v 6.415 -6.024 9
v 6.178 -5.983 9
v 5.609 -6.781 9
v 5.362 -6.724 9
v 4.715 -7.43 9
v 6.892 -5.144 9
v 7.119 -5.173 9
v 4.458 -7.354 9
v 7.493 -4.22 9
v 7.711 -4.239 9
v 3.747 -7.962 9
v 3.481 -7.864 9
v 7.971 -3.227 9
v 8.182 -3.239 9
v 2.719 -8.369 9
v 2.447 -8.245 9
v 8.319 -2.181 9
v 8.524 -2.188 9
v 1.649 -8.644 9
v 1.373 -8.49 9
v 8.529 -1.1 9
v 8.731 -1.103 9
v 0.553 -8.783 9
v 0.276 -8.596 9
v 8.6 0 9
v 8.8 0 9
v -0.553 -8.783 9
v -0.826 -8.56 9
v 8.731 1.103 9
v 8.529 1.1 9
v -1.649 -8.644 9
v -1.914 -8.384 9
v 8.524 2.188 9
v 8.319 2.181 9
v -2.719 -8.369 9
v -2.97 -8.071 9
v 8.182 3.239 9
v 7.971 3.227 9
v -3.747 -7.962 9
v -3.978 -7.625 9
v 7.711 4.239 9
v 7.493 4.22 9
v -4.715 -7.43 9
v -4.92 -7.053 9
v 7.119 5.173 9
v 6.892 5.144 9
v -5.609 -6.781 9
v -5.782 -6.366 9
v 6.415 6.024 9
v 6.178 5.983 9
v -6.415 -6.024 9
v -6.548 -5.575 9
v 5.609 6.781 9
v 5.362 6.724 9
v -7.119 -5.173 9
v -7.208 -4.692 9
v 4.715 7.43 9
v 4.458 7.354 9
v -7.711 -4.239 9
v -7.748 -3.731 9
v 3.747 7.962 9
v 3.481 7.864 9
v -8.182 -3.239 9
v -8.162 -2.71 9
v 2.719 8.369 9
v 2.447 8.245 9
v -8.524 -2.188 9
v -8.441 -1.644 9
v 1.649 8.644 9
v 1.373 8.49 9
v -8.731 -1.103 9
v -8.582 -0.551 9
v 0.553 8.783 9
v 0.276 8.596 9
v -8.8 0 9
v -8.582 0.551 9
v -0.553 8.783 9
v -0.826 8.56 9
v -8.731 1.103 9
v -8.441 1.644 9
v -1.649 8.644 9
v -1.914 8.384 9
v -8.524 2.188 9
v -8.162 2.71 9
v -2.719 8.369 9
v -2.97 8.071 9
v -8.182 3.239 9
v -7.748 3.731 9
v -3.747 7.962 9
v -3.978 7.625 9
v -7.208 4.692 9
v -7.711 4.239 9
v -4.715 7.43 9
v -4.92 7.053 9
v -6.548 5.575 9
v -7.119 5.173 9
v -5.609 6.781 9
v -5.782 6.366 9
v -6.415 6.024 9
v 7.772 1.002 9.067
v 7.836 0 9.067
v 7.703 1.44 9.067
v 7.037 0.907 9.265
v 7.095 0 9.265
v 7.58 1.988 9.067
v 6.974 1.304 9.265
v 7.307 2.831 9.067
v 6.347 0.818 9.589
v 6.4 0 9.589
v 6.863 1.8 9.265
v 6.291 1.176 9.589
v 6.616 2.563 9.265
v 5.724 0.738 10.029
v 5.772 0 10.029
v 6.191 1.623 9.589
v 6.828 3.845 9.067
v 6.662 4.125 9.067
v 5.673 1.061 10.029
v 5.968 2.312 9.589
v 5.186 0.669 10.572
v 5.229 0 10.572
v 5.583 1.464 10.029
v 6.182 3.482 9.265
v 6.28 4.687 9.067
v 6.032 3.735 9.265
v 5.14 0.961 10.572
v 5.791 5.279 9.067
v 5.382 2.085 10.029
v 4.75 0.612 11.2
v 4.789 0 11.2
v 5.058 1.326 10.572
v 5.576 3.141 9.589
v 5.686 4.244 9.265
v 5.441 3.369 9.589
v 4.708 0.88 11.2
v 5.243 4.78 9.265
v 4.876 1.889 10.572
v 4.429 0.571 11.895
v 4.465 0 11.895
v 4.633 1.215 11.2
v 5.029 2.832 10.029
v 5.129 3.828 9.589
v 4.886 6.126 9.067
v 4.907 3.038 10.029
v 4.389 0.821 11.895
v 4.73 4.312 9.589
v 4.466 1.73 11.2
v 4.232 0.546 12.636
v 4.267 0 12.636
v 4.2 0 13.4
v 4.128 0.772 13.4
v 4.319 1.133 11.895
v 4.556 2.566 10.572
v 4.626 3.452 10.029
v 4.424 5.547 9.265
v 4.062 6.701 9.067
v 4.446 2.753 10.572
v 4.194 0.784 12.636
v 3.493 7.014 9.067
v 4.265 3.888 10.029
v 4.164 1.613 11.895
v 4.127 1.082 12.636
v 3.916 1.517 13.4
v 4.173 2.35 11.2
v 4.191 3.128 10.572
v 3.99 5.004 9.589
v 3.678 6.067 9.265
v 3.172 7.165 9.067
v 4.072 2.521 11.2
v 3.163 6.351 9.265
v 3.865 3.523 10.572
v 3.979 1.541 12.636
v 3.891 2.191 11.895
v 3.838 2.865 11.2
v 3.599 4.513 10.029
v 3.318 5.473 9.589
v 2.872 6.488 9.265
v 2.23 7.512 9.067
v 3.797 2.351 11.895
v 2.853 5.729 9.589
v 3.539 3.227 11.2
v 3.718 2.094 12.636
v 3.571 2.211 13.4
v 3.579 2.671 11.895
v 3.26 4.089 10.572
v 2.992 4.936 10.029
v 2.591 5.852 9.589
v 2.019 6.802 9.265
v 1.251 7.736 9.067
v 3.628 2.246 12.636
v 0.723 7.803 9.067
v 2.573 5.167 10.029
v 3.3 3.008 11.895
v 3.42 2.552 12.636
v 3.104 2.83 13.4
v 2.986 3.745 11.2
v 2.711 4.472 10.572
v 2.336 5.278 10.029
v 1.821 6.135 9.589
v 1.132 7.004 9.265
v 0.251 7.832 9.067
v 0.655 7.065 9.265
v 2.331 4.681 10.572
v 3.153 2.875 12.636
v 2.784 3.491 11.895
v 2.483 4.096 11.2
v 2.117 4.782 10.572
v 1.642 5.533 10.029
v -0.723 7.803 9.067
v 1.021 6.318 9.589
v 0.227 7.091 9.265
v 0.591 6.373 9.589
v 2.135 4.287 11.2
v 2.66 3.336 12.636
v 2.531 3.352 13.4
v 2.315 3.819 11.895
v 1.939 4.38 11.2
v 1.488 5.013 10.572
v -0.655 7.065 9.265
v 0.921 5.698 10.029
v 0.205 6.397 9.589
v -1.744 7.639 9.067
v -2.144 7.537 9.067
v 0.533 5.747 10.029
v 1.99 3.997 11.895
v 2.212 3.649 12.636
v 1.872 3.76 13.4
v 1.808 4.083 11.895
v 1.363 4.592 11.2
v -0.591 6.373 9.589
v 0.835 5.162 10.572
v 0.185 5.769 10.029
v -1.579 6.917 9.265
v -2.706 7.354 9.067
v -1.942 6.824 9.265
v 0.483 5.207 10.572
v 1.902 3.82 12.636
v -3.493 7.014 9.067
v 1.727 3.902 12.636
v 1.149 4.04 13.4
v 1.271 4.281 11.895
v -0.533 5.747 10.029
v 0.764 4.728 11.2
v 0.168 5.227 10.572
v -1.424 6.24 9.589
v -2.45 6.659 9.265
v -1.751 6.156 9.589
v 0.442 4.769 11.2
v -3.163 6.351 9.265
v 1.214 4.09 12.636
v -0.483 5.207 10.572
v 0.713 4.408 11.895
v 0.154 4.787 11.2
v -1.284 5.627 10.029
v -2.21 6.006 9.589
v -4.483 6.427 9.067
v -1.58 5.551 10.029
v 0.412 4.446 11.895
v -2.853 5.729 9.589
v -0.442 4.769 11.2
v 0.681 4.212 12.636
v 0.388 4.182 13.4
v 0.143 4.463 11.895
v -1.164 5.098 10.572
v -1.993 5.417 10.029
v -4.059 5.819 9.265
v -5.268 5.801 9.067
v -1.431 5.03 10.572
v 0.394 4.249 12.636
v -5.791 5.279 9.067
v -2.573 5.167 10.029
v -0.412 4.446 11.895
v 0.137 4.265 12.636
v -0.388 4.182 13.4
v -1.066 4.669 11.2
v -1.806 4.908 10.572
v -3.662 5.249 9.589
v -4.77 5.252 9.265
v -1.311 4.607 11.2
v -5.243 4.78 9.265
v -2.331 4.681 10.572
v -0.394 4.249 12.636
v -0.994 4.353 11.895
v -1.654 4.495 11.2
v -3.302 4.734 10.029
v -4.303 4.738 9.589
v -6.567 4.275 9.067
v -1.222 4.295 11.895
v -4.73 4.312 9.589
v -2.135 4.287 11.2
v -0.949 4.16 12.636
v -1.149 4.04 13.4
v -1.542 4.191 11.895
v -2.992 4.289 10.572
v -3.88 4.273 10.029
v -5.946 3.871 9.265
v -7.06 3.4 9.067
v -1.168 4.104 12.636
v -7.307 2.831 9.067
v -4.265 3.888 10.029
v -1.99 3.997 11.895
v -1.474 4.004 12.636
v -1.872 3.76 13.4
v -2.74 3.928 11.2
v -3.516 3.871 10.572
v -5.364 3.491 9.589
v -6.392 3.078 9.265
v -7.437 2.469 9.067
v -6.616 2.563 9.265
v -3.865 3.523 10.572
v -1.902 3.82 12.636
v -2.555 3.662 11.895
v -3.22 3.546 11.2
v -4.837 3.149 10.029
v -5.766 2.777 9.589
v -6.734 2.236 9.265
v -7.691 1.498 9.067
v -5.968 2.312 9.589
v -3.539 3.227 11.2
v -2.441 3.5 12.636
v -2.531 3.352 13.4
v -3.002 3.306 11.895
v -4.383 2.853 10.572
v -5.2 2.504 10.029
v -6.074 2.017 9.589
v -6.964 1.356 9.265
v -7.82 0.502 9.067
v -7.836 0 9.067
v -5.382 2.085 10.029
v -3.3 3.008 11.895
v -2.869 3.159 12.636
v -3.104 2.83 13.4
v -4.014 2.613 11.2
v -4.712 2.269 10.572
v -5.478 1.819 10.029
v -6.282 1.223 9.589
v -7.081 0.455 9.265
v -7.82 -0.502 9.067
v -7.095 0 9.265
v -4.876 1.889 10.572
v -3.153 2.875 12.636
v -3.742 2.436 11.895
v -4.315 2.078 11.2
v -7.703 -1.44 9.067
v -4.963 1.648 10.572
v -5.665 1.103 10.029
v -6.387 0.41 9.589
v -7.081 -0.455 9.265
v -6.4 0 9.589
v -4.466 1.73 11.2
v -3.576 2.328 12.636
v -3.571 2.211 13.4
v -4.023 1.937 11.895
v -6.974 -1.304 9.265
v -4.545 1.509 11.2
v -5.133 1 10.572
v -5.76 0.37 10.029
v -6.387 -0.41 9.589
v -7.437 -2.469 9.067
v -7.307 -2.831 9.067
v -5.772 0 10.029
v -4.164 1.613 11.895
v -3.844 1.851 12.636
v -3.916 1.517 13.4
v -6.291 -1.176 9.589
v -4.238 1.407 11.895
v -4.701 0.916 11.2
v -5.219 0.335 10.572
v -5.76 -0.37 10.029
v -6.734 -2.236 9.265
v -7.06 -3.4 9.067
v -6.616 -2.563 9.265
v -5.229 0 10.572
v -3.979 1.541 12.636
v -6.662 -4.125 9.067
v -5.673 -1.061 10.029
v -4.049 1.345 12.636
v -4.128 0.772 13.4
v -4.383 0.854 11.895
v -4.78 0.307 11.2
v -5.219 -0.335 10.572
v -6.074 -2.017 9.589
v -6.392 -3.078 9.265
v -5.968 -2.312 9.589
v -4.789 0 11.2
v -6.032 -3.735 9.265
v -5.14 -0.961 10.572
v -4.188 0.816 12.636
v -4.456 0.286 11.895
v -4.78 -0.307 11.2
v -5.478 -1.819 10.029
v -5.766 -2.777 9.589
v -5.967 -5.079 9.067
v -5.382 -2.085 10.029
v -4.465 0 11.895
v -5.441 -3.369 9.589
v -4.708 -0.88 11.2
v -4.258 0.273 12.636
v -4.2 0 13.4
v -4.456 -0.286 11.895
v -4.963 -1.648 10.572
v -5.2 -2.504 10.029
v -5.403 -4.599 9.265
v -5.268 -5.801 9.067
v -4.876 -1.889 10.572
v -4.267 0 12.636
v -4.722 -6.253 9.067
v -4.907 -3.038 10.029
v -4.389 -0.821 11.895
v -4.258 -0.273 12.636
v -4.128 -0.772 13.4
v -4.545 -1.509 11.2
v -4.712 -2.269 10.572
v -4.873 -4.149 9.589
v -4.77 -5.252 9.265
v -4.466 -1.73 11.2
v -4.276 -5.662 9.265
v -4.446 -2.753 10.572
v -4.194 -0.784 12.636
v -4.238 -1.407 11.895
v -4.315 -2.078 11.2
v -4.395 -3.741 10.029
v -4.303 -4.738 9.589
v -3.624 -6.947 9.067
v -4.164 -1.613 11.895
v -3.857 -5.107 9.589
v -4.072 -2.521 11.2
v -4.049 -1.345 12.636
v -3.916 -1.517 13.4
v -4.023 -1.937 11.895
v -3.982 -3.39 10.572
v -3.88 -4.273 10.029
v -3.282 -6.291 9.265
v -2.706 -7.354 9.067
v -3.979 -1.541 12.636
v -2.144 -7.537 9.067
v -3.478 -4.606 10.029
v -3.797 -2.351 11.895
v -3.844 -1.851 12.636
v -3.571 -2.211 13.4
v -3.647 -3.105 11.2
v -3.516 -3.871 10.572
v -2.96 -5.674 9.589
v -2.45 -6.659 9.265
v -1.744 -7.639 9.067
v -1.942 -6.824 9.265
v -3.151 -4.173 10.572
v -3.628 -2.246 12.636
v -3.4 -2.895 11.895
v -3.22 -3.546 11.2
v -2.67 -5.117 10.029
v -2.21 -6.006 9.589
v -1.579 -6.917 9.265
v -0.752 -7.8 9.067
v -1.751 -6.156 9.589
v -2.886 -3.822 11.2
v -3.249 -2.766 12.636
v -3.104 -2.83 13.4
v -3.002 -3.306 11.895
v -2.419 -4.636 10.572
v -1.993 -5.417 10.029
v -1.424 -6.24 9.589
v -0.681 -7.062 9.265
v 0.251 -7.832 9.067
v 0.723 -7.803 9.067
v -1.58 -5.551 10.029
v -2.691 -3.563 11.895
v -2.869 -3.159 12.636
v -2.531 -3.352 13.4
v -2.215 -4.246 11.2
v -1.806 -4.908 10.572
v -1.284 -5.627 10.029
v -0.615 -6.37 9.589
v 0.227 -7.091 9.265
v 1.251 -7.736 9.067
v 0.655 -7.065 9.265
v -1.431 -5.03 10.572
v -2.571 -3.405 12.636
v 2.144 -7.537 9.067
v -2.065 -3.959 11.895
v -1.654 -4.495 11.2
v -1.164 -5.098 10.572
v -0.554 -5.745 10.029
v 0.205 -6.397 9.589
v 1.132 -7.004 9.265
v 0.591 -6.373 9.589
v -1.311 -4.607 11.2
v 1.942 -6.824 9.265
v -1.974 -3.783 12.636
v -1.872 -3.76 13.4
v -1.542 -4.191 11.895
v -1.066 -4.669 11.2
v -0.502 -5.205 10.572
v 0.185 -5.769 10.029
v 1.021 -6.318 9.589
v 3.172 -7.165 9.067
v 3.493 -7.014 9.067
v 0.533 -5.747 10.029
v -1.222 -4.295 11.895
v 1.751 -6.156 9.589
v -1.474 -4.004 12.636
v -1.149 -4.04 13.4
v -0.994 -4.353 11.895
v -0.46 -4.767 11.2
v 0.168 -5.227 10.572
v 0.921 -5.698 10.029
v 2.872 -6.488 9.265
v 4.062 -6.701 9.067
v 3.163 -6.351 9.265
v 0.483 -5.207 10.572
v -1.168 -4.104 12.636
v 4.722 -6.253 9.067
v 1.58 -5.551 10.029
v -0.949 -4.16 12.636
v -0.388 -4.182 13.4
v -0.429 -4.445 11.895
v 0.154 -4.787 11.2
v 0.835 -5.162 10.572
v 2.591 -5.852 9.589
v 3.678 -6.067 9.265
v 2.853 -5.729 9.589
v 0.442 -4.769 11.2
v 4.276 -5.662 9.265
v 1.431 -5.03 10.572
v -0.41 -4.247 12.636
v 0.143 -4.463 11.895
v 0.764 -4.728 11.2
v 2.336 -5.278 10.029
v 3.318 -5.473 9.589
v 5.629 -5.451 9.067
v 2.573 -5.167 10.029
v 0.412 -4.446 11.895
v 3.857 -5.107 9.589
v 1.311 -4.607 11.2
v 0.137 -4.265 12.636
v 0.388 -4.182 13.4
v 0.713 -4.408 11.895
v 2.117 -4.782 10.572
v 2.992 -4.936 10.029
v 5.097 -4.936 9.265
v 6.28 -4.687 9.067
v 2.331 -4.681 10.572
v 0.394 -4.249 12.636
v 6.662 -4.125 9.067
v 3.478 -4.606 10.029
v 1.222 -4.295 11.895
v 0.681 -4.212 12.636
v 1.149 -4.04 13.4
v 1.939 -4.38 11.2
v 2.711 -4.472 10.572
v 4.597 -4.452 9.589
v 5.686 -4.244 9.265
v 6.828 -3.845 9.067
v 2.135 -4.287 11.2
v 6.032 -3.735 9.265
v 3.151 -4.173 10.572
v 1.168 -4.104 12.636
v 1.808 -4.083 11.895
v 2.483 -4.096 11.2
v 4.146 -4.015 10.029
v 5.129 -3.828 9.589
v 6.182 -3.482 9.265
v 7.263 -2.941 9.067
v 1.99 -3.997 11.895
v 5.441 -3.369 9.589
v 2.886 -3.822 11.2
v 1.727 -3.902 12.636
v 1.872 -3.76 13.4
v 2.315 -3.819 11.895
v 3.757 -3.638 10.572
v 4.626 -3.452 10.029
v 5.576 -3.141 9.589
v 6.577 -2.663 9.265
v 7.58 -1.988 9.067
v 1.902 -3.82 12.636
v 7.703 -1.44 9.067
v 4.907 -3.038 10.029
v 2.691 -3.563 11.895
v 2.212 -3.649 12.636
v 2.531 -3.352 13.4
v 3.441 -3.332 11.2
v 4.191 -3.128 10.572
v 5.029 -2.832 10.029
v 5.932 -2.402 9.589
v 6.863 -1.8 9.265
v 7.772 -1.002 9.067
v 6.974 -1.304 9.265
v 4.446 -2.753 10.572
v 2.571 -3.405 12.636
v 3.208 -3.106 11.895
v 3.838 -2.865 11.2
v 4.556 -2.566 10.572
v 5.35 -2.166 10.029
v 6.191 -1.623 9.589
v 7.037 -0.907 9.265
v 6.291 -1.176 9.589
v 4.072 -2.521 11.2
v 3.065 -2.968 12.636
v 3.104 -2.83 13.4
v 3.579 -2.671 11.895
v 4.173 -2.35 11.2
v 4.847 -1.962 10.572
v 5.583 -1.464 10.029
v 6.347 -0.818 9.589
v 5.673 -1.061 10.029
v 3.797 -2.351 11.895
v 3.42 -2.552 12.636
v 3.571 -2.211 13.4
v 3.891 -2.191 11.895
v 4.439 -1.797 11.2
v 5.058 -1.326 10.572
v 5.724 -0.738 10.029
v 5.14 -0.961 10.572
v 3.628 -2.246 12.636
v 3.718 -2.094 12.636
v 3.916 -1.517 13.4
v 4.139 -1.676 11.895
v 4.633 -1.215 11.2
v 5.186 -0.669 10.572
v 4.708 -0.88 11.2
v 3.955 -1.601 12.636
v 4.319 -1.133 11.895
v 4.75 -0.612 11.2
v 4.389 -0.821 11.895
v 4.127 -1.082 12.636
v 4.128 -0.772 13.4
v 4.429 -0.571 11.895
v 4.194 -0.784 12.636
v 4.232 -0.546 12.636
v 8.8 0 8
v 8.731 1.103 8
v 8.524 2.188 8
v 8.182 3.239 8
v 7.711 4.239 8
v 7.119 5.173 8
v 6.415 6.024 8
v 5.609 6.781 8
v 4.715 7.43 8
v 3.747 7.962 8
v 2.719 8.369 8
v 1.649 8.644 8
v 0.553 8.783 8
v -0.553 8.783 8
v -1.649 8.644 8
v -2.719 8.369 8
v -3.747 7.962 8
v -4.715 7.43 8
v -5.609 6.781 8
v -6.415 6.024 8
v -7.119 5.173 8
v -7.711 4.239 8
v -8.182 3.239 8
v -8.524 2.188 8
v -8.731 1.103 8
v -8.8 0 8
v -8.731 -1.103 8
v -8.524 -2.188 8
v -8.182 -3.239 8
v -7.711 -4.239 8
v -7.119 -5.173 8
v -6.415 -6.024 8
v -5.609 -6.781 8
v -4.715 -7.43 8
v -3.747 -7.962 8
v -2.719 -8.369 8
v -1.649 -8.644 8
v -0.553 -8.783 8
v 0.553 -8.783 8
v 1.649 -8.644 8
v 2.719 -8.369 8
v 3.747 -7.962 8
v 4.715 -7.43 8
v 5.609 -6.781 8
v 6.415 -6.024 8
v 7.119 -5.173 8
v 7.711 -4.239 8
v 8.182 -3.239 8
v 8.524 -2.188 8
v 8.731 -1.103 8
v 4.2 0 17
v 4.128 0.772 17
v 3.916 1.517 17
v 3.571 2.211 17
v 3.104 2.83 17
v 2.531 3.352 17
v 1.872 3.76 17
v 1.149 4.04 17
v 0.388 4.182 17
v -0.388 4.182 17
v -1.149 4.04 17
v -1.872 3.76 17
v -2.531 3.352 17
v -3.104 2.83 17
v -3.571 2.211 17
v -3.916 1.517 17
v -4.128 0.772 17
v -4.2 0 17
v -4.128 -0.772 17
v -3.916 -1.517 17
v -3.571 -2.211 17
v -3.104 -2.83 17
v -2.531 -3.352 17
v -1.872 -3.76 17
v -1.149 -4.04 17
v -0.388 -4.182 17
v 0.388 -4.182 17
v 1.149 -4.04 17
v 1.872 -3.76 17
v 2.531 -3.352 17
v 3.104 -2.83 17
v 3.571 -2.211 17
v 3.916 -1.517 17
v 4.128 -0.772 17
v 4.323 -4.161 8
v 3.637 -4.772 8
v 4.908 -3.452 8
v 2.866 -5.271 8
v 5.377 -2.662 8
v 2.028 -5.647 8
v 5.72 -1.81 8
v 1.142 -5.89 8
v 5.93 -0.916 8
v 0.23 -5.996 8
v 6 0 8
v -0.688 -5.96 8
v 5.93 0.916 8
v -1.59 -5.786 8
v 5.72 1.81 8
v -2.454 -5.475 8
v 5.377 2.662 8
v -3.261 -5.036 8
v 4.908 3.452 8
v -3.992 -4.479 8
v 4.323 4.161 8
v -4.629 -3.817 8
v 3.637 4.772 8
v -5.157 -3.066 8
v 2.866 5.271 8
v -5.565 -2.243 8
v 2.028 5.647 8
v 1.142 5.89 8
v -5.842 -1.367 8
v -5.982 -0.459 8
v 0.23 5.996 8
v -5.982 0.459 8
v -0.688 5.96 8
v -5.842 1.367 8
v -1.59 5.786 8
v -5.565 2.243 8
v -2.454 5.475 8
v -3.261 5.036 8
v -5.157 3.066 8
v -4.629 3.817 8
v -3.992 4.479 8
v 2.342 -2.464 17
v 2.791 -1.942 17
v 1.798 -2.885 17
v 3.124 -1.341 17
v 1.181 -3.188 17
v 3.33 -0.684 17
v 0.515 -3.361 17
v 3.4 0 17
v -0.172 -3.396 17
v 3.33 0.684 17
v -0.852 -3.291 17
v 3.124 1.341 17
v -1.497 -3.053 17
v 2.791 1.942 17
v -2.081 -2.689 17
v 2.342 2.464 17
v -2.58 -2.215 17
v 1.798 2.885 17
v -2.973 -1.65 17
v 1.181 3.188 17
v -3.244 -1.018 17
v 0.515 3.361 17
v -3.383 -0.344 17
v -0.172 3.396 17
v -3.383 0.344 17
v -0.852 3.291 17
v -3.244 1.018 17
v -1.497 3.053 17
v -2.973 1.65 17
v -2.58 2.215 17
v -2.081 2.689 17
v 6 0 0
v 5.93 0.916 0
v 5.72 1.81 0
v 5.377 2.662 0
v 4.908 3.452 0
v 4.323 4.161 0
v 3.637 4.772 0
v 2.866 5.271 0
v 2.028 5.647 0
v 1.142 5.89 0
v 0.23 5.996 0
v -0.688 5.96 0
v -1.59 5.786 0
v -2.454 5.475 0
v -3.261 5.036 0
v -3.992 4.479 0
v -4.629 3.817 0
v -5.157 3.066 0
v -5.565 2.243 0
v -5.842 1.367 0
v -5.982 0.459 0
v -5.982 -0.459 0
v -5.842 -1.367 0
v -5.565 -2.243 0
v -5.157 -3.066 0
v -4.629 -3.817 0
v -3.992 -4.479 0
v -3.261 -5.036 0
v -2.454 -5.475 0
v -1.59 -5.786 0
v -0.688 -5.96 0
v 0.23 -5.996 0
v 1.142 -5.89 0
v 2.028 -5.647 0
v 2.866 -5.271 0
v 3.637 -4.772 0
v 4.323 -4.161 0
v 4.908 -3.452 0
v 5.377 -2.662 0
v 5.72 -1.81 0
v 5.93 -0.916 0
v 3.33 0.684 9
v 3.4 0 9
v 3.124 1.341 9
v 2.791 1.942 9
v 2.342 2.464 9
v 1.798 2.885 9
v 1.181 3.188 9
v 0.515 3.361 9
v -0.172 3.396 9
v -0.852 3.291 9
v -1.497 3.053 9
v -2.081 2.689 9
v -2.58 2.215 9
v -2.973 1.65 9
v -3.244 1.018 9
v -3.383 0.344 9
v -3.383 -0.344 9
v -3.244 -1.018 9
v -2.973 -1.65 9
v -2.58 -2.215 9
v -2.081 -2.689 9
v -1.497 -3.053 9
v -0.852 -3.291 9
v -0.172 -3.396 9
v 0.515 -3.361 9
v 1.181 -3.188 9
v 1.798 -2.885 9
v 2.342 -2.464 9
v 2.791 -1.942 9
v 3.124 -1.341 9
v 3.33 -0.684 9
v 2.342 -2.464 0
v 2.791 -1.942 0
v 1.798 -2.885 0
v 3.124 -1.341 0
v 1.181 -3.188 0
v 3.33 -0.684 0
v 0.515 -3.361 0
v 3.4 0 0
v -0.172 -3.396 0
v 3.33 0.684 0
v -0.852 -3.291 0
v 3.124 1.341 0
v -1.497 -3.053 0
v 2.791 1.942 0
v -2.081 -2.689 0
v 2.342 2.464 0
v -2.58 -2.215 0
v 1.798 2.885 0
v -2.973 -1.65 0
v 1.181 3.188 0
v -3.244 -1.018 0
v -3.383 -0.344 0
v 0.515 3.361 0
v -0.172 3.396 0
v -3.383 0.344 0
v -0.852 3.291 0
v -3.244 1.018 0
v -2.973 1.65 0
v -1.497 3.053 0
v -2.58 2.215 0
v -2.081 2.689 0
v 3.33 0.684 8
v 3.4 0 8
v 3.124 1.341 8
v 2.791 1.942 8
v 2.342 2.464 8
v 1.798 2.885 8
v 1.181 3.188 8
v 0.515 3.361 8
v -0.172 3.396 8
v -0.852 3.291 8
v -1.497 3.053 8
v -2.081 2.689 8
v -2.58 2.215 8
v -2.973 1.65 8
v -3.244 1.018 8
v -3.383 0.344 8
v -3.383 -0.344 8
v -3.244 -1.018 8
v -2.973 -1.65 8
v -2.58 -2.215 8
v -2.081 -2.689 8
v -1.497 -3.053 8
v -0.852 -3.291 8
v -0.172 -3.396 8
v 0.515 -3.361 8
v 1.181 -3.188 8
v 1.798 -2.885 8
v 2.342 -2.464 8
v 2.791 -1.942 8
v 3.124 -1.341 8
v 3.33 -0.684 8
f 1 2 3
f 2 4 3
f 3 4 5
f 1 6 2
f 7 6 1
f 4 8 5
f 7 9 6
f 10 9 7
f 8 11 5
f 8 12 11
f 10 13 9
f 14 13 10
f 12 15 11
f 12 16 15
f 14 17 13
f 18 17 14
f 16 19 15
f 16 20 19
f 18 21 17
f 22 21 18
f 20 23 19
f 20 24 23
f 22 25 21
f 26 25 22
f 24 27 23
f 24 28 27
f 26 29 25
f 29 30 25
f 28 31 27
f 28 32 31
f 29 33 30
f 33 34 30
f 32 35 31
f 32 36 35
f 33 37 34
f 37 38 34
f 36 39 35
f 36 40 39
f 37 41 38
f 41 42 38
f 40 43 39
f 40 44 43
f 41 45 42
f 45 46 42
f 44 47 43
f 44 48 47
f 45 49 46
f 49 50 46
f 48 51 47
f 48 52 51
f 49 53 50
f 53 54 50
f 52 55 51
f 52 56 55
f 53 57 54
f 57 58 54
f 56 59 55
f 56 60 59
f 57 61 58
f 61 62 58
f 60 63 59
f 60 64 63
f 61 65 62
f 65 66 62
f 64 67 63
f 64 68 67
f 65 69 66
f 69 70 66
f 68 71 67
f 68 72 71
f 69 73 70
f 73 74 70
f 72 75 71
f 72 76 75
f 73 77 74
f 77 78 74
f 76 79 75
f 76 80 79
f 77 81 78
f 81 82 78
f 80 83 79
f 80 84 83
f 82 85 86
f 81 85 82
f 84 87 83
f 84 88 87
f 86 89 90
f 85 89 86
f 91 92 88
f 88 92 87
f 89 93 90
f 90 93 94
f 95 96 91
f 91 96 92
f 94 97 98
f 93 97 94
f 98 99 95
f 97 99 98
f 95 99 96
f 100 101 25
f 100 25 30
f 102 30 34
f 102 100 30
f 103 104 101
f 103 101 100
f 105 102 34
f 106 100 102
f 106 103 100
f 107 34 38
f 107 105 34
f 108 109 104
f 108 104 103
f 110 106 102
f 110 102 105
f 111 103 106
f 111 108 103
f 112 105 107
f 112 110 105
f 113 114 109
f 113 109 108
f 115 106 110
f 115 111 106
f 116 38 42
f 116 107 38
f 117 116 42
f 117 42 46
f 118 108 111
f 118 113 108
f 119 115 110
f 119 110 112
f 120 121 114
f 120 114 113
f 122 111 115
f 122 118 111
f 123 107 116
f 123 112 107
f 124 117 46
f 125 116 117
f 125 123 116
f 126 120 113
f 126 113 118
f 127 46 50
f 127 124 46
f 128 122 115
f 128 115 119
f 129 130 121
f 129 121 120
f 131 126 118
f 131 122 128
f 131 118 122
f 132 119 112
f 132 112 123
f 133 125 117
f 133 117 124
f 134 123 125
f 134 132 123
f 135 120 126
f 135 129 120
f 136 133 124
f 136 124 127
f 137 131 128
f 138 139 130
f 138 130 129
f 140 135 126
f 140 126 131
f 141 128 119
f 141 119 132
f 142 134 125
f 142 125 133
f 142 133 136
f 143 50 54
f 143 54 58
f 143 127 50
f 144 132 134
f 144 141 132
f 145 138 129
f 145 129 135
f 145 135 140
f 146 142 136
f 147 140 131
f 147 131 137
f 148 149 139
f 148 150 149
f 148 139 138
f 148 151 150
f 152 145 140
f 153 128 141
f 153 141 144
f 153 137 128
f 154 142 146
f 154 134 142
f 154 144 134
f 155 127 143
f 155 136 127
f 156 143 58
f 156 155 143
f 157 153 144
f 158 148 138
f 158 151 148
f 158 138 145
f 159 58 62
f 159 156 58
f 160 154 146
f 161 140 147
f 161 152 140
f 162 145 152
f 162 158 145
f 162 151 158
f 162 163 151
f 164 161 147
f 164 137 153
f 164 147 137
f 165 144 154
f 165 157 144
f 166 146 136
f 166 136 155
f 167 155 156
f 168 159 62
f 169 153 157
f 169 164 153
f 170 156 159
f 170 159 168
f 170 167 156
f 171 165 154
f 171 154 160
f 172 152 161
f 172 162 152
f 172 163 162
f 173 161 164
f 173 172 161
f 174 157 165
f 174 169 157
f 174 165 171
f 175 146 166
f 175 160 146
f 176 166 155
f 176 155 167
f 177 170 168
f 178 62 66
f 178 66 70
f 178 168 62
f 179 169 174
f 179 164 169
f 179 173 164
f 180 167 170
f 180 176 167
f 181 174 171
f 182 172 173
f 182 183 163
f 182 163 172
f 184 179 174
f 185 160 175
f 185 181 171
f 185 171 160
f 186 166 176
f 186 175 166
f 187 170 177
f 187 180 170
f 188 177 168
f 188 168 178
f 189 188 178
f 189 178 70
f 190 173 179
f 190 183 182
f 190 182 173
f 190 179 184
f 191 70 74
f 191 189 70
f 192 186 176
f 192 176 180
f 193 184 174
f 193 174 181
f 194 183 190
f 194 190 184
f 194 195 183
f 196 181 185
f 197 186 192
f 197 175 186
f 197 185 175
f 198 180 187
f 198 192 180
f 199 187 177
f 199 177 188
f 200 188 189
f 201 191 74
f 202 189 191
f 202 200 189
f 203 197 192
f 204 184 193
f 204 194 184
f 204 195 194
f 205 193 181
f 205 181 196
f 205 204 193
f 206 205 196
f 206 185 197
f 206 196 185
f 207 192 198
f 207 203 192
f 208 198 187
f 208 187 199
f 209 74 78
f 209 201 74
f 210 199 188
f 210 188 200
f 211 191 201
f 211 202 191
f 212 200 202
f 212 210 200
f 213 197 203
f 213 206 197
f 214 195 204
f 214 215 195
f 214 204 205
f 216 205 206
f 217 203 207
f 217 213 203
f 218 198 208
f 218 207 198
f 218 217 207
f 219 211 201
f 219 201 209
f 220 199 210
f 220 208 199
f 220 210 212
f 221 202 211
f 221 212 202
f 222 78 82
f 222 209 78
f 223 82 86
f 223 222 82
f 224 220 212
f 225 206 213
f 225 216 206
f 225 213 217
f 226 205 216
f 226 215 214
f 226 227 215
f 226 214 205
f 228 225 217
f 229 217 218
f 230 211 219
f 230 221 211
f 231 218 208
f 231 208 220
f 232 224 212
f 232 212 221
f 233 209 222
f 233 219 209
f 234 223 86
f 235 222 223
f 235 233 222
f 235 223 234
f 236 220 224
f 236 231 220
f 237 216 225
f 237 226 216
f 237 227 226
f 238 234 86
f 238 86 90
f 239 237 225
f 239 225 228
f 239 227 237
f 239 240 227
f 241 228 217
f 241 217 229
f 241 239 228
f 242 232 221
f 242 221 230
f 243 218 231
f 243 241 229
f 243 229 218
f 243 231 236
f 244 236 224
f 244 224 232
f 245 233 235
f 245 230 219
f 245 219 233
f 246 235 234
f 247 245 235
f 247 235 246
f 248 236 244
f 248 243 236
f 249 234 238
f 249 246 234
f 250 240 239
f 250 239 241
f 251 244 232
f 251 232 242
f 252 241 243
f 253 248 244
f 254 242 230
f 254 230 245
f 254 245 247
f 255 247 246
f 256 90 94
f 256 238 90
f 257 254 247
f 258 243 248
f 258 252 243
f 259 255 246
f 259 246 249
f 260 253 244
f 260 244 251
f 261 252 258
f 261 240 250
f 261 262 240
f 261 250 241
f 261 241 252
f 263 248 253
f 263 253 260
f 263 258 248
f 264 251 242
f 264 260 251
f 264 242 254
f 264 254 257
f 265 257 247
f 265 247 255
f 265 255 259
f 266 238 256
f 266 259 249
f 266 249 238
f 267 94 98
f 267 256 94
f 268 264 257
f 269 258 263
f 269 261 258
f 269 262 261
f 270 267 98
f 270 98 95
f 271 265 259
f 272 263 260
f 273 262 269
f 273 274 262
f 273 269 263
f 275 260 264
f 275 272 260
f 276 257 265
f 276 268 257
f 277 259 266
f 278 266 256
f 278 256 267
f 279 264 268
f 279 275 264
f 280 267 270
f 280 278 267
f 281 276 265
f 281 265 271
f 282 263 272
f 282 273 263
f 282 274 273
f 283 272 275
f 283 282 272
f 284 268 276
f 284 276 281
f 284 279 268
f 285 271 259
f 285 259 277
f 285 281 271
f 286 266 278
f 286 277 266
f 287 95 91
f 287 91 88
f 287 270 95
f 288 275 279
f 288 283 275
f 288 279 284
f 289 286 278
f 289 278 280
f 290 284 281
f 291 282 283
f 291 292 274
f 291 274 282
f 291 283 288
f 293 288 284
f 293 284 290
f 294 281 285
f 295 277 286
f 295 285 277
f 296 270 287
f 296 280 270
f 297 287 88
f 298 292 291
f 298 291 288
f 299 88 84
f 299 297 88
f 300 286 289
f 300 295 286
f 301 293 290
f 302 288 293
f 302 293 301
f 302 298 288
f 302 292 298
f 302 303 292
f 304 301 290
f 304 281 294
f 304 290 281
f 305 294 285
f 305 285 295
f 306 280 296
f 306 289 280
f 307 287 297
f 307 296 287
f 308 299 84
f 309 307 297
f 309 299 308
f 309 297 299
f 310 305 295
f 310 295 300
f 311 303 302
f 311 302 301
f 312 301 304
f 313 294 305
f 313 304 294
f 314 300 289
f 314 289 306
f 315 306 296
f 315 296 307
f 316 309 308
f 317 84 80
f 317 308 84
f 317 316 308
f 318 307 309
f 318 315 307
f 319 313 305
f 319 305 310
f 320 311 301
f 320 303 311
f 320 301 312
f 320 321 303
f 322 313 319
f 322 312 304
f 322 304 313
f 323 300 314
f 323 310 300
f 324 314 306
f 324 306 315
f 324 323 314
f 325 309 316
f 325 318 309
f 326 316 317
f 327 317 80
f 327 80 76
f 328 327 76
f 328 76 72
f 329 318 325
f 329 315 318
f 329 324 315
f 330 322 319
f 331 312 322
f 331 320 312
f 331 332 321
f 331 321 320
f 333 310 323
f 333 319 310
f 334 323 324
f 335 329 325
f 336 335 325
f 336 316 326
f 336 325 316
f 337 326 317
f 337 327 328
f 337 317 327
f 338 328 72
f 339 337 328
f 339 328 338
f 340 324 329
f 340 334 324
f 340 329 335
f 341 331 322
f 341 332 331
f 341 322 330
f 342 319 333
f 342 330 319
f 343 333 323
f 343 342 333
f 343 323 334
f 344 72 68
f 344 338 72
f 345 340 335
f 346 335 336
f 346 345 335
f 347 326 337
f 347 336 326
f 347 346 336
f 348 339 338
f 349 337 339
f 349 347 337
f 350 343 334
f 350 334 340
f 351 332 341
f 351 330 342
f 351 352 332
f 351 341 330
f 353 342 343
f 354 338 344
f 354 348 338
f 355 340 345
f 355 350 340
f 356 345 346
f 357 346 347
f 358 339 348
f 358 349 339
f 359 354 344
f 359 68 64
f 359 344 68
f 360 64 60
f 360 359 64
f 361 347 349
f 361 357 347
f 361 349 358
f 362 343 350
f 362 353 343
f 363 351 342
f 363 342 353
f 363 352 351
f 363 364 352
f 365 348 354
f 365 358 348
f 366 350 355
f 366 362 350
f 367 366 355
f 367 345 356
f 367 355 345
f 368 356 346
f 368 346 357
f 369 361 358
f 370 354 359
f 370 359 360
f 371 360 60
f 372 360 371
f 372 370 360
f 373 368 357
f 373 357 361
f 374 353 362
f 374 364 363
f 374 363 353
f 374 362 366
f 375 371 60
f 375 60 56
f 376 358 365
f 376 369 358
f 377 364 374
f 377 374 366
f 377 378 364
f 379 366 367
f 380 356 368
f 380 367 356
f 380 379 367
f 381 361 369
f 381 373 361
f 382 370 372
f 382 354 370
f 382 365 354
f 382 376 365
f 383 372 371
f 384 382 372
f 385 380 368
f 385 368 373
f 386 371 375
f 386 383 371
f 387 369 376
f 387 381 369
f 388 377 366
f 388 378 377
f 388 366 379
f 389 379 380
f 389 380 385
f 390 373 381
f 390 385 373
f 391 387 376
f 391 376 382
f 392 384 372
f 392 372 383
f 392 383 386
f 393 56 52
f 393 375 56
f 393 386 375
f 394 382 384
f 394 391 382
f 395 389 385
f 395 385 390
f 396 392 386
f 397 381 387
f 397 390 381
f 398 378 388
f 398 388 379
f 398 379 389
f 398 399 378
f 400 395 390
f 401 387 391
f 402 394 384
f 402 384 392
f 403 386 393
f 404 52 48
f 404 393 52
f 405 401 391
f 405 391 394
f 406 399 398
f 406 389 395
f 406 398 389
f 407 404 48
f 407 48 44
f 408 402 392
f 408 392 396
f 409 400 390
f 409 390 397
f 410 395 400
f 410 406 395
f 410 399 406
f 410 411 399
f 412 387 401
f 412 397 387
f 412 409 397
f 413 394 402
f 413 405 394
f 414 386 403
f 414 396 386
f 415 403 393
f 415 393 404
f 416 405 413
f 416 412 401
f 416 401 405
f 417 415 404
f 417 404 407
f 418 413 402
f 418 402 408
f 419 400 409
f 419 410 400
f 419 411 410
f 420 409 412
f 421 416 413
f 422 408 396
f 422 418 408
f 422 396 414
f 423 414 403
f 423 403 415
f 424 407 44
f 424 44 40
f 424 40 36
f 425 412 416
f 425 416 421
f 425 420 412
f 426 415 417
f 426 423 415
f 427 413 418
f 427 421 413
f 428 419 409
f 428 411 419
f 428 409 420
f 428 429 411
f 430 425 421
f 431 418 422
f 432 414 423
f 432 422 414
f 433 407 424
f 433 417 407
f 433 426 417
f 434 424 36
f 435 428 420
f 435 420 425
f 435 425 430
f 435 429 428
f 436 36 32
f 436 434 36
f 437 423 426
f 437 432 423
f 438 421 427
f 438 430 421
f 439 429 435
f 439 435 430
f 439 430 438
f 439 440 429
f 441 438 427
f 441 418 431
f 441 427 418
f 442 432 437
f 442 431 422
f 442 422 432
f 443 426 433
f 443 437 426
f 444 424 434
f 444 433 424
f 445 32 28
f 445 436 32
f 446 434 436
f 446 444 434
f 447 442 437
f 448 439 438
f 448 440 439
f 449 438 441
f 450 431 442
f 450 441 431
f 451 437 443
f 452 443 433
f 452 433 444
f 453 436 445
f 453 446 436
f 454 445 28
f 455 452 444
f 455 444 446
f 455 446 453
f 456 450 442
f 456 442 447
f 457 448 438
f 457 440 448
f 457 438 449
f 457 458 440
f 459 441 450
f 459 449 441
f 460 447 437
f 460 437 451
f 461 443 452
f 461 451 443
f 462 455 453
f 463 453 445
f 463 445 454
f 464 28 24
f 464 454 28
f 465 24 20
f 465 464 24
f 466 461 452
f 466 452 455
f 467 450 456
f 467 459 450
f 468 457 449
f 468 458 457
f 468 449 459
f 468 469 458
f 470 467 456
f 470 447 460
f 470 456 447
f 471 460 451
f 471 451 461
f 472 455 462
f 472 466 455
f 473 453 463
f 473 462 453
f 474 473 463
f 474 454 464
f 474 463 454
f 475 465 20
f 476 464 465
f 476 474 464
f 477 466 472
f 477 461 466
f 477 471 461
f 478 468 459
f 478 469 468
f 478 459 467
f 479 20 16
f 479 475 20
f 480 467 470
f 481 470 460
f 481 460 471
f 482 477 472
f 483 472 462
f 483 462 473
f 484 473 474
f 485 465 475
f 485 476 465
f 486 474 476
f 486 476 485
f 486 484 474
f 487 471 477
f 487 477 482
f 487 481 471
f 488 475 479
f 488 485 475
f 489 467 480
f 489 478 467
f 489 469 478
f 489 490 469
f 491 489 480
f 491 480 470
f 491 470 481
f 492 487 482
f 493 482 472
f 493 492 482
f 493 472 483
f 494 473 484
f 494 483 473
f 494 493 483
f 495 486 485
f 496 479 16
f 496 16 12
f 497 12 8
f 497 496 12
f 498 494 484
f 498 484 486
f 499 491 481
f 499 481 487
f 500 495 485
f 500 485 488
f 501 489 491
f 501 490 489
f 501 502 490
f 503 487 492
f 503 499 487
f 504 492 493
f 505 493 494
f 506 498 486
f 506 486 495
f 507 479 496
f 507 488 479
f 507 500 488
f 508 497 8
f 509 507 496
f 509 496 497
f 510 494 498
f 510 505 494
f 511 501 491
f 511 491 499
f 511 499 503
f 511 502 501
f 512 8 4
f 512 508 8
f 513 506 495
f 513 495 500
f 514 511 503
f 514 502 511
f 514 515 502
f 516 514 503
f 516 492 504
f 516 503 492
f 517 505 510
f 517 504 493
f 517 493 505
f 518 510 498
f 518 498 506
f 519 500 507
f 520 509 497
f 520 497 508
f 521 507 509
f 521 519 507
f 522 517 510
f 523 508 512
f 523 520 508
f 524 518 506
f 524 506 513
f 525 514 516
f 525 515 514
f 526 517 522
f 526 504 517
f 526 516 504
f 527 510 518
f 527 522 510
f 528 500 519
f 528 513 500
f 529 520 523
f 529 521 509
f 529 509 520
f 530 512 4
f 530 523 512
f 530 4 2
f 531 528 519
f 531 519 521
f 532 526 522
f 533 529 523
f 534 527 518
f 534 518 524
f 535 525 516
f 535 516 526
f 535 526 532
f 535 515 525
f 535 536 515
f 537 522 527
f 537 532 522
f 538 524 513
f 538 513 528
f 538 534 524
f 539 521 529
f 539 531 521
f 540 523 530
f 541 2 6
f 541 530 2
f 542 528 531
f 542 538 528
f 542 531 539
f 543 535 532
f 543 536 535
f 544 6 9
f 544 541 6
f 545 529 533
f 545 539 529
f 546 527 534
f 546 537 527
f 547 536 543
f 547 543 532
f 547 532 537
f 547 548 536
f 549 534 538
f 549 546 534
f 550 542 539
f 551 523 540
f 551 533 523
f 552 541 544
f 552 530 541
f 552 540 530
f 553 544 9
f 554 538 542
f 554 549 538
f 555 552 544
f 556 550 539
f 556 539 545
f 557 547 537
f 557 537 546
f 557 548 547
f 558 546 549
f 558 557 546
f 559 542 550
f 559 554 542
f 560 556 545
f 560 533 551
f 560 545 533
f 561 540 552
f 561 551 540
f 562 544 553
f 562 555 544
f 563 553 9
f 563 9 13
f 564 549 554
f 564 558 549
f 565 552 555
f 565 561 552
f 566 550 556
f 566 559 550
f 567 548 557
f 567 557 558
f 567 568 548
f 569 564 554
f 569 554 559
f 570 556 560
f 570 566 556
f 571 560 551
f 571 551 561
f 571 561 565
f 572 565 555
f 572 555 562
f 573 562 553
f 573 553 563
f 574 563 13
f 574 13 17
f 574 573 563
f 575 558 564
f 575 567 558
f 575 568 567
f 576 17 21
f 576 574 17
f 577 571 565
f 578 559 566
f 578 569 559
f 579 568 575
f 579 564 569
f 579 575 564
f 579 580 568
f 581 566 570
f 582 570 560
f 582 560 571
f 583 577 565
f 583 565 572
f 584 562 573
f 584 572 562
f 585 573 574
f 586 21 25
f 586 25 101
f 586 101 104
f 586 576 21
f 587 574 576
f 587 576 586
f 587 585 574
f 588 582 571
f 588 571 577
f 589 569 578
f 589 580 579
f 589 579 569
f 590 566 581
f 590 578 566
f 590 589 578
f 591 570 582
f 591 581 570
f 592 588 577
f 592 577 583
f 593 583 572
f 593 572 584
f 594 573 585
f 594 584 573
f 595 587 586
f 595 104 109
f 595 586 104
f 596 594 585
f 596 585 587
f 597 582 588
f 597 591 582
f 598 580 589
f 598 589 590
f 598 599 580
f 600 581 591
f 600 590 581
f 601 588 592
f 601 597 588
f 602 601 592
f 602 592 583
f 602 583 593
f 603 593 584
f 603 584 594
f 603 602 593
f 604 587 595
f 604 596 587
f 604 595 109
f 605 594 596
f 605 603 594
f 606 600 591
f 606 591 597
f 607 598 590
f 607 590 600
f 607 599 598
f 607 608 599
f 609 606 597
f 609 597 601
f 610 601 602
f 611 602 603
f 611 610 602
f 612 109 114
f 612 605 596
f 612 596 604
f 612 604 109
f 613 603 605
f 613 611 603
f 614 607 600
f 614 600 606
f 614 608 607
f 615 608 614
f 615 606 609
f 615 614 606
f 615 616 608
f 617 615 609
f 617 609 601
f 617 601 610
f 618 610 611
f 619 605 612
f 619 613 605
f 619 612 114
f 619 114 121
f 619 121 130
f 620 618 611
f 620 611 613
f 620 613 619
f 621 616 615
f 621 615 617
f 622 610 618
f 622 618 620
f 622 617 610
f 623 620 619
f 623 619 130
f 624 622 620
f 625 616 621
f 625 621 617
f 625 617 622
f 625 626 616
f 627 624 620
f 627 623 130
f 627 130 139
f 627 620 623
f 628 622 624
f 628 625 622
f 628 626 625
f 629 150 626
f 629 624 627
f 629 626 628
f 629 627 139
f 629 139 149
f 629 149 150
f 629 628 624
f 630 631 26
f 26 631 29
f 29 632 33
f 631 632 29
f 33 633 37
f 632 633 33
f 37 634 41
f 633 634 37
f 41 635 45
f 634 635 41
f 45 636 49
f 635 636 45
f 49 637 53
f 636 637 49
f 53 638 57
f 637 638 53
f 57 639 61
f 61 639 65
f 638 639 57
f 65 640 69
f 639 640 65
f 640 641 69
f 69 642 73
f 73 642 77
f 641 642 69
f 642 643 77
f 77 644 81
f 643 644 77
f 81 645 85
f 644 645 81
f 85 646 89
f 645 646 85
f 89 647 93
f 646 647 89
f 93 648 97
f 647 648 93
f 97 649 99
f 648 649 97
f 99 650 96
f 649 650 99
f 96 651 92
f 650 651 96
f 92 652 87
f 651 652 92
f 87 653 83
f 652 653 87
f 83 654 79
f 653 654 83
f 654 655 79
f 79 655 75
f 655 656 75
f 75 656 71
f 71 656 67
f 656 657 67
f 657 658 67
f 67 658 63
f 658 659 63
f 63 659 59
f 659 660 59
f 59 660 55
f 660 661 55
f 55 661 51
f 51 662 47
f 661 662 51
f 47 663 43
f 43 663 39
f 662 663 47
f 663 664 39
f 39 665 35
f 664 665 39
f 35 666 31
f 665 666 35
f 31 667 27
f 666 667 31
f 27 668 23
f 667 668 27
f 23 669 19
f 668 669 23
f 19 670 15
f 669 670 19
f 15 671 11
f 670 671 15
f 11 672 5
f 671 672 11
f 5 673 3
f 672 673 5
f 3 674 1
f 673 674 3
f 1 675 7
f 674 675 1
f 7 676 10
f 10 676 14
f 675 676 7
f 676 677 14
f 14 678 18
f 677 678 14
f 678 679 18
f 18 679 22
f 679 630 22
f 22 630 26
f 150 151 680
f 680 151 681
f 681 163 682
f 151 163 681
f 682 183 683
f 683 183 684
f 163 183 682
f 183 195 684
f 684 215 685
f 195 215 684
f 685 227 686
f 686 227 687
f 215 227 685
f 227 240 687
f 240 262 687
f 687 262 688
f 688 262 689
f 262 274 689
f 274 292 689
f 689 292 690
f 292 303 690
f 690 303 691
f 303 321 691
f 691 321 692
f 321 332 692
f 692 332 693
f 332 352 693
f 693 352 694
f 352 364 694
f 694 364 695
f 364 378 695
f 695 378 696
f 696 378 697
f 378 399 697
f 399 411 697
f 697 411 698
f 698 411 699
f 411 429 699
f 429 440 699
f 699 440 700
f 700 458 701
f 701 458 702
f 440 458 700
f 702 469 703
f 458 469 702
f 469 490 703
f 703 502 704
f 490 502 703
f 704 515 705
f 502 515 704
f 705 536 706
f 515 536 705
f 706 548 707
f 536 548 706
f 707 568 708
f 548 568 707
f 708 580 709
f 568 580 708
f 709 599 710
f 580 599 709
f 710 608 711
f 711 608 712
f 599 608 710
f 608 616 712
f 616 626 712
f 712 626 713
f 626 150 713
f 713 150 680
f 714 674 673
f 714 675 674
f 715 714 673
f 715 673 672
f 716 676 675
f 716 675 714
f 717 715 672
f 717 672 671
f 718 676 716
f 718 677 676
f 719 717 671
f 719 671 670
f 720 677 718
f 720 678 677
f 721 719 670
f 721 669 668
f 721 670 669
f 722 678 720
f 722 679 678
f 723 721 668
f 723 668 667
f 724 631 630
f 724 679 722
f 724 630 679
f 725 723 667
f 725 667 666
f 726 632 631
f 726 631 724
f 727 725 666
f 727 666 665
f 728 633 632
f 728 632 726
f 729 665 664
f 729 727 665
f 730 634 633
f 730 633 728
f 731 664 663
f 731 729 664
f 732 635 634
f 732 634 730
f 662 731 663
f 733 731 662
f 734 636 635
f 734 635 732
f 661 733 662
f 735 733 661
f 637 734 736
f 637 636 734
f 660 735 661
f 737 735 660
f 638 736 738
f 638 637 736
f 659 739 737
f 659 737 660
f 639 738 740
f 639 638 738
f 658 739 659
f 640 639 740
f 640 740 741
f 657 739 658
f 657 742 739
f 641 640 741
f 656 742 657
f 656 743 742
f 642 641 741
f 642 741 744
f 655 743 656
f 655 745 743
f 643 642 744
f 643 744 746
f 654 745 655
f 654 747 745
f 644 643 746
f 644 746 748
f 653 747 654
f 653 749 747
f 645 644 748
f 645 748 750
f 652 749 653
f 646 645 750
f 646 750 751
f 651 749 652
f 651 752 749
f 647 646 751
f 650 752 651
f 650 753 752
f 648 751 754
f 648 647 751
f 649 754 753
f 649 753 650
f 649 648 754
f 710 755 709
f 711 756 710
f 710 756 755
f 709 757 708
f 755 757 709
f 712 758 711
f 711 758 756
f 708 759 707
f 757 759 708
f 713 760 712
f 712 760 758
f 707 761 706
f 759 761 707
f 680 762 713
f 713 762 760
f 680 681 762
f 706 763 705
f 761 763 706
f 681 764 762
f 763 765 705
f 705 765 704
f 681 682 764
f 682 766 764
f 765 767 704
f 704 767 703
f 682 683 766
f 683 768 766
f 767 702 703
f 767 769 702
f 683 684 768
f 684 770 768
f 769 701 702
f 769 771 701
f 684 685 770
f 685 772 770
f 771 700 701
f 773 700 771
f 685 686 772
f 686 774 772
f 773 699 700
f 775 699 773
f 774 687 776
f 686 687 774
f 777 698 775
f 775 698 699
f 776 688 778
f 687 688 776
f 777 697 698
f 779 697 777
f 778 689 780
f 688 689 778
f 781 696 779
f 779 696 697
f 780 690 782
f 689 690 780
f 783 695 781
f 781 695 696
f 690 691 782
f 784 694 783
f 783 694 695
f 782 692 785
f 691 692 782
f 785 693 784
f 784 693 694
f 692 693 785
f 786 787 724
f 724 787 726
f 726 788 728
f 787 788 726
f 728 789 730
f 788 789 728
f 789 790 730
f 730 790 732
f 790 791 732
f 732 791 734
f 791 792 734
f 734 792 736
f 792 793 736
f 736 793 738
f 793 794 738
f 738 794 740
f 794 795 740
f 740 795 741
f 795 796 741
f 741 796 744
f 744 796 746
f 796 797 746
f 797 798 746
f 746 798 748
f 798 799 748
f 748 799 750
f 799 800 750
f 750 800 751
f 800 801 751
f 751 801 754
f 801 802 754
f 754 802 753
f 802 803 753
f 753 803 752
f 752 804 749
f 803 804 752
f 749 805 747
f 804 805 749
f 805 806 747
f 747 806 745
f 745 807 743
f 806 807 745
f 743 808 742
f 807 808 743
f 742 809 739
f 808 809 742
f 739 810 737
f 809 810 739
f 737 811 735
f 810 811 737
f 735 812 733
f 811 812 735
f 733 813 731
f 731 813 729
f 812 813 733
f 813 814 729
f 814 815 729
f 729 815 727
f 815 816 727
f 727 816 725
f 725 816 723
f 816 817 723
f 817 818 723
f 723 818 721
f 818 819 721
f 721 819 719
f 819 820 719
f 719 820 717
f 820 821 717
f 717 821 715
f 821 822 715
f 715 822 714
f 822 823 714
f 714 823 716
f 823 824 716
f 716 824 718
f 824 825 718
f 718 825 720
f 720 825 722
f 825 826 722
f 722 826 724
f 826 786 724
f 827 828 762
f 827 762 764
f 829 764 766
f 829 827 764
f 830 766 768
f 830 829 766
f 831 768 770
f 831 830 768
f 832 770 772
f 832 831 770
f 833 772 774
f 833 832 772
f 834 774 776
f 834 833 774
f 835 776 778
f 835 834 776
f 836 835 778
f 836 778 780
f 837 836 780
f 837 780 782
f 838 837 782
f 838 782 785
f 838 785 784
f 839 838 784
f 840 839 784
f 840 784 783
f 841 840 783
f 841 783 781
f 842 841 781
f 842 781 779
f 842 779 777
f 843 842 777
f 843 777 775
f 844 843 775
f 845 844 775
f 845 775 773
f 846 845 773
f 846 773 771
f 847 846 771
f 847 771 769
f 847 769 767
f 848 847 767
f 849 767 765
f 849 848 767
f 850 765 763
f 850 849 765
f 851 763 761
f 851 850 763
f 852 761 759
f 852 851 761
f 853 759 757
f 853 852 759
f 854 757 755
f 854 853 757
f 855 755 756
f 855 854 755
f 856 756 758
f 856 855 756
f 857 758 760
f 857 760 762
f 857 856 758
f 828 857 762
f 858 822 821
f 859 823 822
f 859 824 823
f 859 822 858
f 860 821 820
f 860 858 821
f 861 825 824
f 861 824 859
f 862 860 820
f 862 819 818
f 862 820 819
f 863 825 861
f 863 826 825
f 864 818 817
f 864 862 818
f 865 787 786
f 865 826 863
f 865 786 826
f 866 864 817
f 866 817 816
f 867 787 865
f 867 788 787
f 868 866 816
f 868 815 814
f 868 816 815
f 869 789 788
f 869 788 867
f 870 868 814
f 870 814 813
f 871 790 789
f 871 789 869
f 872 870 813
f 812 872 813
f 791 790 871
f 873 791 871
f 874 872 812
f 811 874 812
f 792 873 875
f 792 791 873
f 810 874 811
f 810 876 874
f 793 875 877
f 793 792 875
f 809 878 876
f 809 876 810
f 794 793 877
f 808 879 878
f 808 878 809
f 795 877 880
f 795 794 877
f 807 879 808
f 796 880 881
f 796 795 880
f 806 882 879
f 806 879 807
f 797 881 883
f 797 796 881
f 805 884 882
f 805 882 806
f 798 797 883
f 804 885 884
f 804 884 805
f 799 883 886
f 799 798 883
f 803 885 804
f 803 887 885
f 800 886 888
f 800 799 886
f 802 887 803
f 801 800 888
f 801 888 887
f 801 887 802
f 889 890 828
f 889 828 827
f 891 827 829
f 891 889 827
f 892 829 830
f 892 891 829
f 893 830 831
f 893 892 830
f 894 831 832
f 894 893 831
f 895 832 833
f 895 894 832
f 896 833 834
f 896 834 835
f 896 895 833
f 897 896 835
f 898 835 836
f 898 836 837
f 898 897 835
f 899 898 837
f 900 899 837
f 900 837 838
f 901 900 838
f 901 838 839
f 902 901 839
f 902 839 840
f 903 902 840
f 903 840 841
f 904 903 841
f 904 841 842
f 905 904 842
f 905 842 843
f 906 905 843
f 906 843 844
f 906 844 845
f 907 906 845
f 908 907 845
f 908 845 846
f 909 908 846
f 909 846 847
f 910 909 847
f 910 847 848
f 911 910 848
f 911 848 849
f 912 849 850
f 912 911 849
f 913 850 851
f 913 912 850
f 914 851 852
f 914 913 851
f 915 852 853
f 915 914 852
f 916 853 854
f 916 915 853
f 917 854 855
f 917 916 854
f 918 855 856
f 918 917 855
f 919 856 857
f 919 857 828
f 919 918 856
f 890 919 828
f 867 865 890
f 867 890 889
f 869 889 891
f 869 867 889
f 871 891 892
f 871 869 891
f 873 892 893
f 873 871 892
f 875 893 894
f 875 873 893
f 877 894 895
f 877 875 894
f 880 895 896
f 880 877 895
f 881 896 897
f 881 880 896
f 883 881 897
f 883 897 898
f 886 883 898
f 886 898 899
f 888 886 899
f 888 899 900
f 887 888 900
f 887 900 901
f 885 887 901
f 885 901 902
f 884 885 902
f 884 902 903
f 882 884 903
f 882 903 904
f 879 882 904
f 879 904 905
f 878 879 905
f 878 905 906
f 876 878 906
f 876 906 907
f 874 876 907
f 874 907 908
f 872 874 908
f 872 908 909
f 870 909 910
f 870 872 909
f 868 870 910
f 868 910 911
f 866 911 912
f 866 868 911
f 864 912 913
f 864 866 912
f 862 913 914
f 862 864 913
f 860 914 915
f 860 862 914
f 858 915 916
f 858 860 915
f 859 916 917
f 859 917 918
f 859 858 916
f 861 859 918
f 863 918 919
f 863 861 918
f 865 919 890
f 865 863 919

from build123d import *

# Parameters (mm, degrees)
SKETCH_R      = 6
SKETCH_R_2    = 3.4
PAD_DEPTH     = 8
SKETCH001_R   = 8.8
SKETCH001_R_2 = 3.4
PAD001_DEPTH  = 1
SKETCH002_R   = 4.2
SKETCH002_R_2 = 3.4
PAD002_DEPTH  = 8
FILLET_R      = 4.4


with BuildPart() as part:
    # Sketch → Pad (new body)
    with BuildSketch(Plane.XY):
        Circle(SKETCH_R)
        Circle(SKETCH_R_2, mode=Mode.SUBTRACT)
    extrude(amount=PAD_DEPTH)

    # Sketch001 → Pad001 (new body)
    with BuildSketch(Plane.XY.offset(8)):
        Circle(SKETCH001_R)
        Circle(SKETCH001_R_2, mode=Mode.SUBTRACT)
    extrude(amount=PAD001_DEPTH)

    # Sketch002 → Pad002 (new body)
    with BuildSketch(Plane.XY.offset(9)):
        Circle(SKETCH002_R)
        Circle(SKETCH002_R_2, mode=Mode.SUBTRACT)
    extrude(amount=PAD002_DEPTH)

    # Fillet
    fillet_edges = [part.edges().sort_by_distance(p)[0] for p in [
        (-4.2, 0, 9),
    ]]
    fillet(fillet_edges, radius=FILLET_R)


solid = part.part
